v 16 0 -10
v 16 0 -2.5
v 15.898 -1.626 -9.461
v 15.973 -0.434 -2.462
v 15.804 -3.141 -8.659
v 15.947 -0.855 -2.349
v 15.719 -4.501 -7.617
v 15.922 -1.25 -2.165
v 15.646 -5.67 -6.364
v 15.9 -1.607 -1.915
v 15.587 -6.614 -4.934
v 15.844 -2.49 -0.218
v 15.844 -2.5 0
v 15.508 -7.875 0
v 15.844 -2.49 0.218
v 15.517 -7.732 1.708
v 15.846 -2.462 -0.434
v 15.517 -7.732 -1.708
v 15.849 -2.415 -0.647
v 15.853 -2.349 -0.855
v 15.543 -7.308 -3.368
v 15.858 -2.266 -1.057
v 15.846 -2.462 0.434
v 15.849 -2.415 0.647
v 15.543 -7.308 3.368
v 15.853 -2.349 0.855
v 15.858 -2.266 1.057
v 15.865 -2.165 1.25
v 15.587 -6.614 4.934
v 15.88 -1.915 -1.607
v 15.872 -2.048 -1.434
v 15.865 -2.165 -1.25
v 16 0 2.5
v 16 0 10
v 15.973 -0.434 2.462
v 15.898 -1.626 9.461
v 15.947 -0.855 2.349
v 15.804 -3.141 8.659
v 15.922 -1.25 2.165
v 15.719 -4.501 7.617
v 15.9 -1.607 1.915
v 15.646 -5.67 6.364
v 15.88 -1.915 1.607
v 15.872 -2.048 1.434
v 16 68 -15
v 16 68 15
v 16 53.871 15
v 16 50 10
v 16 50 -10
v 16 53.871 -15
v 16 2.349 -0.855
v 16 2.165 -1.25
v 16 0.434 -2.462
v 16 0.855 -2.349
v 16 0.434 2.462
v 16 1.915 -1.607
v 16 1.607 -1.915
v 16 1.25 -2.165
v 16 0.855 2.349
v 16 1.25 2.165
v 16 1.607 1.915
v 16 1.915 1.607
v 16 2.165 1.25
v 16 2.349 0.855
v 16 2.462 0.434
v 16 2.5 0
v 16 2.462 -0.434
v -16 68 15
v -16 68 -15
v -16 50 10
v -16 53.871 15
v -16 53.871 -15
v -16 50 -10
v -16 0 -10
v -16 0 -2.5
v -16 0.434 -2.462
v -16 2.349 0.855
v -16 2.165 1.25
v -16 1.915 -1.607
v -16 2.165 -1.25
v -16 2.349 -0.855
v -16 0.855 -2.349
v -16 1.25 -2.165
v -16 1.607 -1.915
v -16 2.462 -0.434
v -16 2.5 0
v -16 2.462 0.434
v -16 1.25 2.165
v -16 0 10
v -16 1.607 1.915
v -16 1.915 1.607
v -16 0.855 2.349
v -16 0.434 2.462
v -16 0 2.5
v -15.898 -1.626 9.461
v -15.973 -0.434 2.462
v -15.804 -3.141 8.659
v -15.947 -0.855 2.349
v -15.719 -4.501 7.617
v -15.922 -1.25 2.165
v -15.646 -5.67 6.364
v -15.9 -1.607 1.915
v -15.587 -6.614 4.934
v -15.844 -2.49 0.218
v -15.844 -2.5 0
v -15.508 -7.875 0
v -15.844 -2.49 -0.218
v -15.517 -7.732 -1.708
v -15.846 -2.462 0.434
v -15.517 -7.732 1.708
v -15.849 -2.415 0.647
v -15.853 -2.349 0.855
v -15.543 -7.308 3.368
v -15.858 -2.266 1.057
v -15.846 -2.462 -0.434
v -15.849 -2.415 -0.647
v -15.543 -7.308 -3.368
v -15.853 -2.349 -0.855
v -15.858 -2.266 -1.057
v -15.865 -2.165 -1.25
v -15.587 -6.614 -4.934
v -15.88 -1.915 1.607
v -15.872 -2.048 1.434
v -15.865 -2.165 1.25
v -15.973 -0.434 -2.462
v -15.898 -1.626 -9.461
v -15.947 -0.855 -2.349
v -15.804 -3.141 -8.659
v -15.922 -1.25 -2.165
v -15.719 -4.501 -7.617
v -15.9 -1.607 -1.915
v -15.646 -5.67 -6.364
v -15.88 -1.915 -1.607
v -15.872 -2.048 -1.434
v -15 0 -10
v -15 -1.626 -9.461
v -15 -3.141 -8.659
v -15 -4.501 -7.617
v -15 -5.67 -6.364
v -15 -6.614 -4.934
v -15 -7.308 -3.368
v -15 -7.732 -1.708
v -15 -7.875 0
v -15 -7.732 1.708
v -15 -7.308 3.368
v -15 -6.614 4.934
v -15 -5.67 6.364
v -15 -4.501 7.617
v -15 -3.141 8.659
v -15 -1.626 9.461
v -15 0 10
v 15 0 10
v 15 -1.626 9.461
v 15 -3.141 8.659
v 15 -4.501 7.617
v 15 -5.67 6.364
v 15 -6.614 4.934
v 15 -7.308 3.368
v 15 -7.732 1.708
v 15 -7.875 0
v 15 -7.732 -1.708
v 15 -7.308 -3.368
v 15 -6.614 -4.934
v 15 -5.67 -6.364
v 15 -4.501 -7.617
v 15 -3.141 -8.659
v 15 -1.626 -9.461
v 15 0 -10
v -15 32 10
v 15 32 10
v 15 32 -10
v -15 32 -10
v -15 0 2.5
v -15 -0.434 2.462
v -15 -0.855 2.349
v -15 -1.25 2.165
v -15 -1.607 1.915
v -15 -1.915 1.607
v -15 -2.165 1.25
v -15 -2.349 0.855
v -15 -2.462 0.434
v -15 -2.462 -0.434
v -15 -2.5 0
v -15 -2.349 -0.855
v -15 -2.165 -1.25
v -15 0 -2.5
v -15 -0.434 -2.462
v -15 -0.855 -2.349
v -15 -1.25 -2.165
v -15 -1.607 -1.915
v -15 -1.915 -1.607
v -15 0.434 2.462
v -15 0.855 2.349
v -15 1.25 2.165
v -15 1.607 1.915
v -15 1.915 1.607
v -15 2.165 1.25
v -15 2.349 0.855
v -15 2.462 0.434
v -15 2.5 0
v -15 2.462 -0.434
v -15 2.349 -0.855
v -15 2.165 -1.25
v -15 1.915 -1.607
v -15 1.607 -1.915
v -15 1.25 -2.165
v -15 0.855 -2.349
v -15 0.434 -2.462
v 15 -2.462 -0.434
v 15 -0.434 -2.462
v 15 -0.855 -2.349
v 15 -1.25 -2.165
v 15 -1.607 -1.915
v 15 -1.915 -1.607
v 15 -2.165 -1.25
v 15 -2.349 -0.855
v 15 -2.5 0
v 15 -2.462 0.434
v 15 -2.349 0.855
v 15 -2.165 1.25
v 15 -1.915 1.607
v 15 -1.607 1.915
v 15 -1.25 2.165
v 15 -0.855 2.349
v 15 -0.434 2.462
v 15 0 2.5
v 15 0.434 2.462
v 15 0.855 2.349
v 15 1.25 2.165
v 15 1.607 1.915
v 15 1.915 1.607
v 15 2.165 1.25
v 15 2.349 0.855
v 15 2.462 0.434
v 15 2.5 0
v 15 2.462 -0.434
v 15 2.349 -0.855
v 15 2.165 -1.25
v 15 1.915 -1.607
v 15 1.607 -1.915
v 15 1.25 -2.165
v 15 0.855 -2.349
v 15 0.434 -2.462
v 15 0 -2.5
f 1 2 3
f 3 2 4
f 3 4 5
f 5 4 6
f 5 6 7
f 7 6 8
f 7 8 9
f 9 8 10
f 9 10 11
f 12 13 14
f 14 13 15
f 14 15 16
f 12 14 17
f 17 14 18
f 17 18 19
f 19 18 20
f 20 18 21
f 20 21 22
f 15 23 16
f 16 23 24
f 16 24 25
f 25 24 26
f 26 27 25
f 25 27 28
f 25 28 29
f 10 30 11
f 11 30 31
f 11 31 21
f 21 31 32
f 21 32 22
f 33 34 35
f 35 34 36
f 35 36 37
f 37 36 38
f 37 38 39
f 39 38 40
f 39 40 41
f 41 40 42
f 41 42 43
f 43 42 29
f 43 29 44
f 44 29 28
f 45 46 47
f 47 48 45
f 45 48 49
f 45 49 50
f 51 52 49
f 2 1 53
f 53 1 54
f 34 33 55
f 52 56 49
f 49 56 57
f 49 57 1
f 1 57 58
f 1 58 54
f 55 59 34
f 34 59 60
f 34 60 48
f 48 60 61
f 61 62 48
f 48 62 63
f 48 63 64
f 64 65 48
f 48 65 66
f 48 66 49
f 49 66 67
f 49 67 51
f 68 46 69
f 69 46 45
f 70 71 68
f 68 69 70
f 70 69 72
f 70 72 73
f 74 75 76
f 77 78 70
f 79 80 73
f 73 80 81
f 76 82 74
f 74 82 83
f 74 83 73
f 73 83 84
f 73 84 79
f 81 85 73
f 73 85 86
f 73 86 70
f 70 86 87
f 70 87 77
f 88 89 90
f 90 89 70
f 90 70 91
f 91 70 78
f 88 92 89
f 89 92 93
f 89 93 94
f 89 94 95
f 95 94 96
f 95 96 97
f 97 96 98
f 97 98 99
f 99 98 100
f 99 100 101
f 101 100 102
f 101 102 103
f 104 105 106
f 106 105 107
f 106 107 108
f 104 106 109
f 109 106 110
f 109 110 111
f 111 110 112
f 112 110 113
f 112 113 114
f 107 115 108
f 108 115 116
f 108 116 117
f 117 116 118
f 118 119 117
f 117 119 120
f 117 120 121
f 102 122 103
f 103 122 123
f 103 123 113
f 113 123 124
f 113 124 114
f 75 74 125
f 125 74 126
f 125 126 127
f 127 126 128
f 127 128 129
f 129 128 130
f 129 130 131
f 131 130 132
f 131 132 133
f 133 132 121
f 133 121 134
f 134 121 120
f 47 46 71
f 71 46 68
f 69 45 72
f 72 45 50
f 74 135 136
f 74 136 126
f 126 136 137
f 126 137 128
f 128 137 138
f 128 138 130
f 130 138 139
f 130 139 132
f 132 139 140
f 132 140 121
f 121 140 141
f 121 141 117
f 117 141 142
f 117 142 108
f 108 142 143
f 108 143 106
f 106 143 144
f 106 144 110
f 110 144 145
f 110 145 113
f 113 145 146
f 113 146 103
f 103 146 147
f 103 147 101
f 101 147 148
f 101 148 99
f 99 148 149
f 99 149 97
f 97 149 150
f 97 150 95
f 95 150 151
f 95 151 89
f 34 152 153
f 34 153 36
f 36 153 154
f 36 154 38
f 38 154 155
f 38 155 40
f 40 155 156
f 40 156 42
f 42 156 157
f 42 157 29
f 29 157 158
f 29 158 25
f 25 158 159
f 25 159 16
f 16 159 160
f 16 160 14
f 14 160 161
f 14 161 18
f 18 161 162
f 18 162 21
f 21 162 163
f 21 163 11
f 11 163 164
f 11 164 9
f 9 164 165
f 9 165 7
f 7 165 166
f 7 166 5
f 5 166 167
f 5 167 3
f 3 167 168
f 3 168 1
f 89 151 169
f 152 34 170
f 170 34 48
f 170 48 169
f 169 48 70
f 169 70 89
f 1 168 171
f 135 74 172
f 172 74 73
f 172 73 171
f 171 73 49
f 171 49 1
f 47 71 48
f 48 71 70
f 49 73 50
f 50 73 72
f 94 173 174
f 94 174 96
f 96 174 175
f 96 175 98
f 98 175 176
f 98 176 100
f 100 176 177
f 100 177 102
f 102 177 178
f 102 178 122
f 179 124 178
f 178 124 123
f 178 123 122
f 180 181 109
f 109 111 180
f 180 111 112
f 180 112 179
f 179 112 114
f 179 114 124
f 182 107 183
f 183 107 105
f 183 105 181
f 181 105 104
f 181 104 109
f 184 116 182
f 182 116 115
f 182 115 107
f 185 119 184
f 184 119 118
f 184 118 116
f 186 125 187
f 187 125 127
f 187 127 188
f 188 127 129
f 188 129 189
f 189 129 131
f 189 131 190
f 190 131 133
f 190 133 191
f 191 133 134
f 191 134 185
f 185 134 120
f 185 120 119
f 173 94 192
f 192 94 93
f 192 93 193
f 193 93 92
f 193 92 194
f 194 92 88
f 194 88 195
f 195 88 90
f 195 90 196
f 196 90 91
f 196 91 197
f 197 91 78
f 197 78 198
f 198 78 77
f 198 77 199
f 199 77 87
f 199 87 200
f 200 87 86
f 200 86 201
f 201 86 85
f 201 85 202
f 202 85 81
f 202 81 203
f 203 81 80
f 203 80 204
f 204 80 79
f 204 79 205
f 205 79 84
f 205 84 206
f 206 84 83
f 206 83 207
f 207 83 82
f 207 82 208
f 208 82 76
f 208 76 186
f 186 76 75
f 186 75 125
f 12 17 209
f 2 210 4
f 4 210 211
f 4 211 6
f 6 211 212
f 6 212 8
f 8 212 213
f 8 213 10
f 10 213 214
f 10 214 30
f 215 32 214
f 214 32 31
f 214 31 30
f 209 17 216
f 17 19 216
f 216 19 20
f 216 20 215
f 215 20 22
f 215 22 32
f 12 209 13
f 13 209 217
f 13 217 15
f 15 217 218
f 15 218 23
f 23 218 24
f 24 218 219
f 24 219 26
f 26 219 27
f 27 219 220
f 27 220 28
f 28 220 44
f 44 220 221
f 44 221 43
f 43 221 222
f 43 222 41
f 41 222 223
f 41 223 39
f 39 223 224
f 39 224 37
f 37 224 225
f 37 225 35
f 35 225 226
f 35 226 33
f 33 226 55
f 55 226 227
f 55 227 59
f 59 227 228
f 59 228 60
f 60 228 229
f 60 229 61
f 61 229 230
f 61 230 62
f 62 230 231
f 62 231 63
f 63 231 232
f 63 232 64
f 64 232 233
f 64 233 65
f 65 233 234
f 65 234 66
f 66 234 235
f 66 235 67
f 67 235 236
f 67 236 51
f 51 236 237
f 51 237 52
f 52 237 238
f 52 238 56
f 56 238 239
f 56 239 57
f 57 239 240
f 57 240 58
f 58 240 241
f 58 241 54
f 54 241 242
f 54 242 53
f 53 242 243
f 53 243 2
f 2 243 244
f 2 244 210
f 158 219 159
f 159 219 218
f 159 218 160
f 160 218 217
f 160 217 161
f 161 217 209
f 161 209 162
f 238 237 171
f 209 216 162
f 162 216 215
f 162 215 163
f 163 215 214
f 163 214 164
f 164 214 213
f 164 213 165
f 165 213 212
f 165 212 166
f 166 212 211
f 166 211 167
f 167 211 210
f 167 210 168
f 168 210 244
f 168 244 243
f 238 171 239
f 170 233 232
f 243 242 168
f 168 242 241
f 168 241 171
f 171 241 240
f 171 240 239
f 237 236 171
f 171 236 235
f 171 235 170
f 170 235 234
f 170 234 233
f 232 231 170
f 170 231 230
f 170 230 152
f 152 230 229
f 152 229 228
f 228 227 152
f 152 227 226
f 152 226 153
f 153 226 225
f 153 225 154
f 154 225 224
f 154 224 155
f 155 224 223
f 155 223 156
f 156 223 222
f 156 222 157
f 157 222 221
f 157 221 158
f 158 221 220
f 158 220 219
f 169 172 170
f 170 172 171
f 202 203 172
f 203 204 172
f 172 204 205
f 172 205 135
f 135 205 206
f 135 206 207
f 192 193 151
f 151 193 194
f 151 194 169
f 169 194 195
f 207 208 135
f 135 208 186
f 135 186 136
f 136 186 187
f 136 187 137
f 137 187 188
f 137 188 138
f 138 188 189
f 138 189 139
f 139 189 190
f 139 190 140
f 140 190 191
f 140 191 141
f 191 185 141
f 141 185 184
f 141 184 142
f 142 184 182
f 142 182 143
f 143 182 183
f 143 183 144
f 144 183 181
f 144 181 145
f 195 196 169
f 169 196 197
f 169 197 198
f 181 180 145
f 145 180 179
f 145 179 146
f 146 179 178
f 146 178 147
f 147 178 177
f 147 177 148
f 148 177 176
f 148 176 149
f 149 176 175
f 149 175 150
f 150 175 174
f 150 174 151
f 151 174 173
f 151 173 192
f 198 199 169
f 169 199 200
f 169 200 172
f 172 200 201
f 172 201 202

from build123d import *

# Parameters (mm, degrees)
BOSS_EXTRUDE1_DEPTH     = 15
CUT_EXTRUDE1_DEPTH      = 77.635500912
CUT_EXTRUDE1_DEPTH_BACK = 77.635500912
SKETCH3_R               = 2.5


with BuildPart() as part:
    # Sketch1 → Boss-Extrude1 (new, symmetric)
    with BuildSketch(Plane.XY):
        Polygon((-15, -8), (-15, 32), (15, 32), (15, -8), (15.5, -8), (16, 0), (16, 68), (-16, 68), (-16, 0), (-15.5, -8), align=None)
    extrude(amount=BOSS_EXTRUDE1_DEPTH, both=True)

    # Sketch3 → Cut-Extrude1 (cut, two sides: drawn at the far end of the back side and taken through both)
    with BuildSketch(Plane.ZY.offset(16).offset(-CUT_EXTRUDE1_DEPTH_BACK)):
        Circle(SKETCH3_R)
        with BuildLine():
            Line((-10, 0), (-10, 50))
            Line((-10, 50), (-16.325920345, 54.897216738))
            Line((-16.325920345, 54.897216738), (-25.192820329, 54.897216738))
            Line((-25.192820329, 54.897216738), (-25.192820329, -12.983802327))
            Line((-25.192820329, -12.983802327), (26.325920345, -12.983802327))
            Line((26.325920345, -12.983802327), (26.325920345, 54.897216738))
            Line((26.325920345, 54.897216738), (16.325920345, 54.897216738))
            Line((16.325920345, 54.897216738), (10, 50))
            Line((10, 50), (10, 0))
            ThreePointArc((10, 0), (0, -7.874716557), (-10, 0))
        make_face()
    extrude(amount=CUT_EXTRUDE1_DEPTH + CUT_EXTRUDE1_DEPTH_BACK, mode=Mode.SUBTRACT)


solid = part.part
